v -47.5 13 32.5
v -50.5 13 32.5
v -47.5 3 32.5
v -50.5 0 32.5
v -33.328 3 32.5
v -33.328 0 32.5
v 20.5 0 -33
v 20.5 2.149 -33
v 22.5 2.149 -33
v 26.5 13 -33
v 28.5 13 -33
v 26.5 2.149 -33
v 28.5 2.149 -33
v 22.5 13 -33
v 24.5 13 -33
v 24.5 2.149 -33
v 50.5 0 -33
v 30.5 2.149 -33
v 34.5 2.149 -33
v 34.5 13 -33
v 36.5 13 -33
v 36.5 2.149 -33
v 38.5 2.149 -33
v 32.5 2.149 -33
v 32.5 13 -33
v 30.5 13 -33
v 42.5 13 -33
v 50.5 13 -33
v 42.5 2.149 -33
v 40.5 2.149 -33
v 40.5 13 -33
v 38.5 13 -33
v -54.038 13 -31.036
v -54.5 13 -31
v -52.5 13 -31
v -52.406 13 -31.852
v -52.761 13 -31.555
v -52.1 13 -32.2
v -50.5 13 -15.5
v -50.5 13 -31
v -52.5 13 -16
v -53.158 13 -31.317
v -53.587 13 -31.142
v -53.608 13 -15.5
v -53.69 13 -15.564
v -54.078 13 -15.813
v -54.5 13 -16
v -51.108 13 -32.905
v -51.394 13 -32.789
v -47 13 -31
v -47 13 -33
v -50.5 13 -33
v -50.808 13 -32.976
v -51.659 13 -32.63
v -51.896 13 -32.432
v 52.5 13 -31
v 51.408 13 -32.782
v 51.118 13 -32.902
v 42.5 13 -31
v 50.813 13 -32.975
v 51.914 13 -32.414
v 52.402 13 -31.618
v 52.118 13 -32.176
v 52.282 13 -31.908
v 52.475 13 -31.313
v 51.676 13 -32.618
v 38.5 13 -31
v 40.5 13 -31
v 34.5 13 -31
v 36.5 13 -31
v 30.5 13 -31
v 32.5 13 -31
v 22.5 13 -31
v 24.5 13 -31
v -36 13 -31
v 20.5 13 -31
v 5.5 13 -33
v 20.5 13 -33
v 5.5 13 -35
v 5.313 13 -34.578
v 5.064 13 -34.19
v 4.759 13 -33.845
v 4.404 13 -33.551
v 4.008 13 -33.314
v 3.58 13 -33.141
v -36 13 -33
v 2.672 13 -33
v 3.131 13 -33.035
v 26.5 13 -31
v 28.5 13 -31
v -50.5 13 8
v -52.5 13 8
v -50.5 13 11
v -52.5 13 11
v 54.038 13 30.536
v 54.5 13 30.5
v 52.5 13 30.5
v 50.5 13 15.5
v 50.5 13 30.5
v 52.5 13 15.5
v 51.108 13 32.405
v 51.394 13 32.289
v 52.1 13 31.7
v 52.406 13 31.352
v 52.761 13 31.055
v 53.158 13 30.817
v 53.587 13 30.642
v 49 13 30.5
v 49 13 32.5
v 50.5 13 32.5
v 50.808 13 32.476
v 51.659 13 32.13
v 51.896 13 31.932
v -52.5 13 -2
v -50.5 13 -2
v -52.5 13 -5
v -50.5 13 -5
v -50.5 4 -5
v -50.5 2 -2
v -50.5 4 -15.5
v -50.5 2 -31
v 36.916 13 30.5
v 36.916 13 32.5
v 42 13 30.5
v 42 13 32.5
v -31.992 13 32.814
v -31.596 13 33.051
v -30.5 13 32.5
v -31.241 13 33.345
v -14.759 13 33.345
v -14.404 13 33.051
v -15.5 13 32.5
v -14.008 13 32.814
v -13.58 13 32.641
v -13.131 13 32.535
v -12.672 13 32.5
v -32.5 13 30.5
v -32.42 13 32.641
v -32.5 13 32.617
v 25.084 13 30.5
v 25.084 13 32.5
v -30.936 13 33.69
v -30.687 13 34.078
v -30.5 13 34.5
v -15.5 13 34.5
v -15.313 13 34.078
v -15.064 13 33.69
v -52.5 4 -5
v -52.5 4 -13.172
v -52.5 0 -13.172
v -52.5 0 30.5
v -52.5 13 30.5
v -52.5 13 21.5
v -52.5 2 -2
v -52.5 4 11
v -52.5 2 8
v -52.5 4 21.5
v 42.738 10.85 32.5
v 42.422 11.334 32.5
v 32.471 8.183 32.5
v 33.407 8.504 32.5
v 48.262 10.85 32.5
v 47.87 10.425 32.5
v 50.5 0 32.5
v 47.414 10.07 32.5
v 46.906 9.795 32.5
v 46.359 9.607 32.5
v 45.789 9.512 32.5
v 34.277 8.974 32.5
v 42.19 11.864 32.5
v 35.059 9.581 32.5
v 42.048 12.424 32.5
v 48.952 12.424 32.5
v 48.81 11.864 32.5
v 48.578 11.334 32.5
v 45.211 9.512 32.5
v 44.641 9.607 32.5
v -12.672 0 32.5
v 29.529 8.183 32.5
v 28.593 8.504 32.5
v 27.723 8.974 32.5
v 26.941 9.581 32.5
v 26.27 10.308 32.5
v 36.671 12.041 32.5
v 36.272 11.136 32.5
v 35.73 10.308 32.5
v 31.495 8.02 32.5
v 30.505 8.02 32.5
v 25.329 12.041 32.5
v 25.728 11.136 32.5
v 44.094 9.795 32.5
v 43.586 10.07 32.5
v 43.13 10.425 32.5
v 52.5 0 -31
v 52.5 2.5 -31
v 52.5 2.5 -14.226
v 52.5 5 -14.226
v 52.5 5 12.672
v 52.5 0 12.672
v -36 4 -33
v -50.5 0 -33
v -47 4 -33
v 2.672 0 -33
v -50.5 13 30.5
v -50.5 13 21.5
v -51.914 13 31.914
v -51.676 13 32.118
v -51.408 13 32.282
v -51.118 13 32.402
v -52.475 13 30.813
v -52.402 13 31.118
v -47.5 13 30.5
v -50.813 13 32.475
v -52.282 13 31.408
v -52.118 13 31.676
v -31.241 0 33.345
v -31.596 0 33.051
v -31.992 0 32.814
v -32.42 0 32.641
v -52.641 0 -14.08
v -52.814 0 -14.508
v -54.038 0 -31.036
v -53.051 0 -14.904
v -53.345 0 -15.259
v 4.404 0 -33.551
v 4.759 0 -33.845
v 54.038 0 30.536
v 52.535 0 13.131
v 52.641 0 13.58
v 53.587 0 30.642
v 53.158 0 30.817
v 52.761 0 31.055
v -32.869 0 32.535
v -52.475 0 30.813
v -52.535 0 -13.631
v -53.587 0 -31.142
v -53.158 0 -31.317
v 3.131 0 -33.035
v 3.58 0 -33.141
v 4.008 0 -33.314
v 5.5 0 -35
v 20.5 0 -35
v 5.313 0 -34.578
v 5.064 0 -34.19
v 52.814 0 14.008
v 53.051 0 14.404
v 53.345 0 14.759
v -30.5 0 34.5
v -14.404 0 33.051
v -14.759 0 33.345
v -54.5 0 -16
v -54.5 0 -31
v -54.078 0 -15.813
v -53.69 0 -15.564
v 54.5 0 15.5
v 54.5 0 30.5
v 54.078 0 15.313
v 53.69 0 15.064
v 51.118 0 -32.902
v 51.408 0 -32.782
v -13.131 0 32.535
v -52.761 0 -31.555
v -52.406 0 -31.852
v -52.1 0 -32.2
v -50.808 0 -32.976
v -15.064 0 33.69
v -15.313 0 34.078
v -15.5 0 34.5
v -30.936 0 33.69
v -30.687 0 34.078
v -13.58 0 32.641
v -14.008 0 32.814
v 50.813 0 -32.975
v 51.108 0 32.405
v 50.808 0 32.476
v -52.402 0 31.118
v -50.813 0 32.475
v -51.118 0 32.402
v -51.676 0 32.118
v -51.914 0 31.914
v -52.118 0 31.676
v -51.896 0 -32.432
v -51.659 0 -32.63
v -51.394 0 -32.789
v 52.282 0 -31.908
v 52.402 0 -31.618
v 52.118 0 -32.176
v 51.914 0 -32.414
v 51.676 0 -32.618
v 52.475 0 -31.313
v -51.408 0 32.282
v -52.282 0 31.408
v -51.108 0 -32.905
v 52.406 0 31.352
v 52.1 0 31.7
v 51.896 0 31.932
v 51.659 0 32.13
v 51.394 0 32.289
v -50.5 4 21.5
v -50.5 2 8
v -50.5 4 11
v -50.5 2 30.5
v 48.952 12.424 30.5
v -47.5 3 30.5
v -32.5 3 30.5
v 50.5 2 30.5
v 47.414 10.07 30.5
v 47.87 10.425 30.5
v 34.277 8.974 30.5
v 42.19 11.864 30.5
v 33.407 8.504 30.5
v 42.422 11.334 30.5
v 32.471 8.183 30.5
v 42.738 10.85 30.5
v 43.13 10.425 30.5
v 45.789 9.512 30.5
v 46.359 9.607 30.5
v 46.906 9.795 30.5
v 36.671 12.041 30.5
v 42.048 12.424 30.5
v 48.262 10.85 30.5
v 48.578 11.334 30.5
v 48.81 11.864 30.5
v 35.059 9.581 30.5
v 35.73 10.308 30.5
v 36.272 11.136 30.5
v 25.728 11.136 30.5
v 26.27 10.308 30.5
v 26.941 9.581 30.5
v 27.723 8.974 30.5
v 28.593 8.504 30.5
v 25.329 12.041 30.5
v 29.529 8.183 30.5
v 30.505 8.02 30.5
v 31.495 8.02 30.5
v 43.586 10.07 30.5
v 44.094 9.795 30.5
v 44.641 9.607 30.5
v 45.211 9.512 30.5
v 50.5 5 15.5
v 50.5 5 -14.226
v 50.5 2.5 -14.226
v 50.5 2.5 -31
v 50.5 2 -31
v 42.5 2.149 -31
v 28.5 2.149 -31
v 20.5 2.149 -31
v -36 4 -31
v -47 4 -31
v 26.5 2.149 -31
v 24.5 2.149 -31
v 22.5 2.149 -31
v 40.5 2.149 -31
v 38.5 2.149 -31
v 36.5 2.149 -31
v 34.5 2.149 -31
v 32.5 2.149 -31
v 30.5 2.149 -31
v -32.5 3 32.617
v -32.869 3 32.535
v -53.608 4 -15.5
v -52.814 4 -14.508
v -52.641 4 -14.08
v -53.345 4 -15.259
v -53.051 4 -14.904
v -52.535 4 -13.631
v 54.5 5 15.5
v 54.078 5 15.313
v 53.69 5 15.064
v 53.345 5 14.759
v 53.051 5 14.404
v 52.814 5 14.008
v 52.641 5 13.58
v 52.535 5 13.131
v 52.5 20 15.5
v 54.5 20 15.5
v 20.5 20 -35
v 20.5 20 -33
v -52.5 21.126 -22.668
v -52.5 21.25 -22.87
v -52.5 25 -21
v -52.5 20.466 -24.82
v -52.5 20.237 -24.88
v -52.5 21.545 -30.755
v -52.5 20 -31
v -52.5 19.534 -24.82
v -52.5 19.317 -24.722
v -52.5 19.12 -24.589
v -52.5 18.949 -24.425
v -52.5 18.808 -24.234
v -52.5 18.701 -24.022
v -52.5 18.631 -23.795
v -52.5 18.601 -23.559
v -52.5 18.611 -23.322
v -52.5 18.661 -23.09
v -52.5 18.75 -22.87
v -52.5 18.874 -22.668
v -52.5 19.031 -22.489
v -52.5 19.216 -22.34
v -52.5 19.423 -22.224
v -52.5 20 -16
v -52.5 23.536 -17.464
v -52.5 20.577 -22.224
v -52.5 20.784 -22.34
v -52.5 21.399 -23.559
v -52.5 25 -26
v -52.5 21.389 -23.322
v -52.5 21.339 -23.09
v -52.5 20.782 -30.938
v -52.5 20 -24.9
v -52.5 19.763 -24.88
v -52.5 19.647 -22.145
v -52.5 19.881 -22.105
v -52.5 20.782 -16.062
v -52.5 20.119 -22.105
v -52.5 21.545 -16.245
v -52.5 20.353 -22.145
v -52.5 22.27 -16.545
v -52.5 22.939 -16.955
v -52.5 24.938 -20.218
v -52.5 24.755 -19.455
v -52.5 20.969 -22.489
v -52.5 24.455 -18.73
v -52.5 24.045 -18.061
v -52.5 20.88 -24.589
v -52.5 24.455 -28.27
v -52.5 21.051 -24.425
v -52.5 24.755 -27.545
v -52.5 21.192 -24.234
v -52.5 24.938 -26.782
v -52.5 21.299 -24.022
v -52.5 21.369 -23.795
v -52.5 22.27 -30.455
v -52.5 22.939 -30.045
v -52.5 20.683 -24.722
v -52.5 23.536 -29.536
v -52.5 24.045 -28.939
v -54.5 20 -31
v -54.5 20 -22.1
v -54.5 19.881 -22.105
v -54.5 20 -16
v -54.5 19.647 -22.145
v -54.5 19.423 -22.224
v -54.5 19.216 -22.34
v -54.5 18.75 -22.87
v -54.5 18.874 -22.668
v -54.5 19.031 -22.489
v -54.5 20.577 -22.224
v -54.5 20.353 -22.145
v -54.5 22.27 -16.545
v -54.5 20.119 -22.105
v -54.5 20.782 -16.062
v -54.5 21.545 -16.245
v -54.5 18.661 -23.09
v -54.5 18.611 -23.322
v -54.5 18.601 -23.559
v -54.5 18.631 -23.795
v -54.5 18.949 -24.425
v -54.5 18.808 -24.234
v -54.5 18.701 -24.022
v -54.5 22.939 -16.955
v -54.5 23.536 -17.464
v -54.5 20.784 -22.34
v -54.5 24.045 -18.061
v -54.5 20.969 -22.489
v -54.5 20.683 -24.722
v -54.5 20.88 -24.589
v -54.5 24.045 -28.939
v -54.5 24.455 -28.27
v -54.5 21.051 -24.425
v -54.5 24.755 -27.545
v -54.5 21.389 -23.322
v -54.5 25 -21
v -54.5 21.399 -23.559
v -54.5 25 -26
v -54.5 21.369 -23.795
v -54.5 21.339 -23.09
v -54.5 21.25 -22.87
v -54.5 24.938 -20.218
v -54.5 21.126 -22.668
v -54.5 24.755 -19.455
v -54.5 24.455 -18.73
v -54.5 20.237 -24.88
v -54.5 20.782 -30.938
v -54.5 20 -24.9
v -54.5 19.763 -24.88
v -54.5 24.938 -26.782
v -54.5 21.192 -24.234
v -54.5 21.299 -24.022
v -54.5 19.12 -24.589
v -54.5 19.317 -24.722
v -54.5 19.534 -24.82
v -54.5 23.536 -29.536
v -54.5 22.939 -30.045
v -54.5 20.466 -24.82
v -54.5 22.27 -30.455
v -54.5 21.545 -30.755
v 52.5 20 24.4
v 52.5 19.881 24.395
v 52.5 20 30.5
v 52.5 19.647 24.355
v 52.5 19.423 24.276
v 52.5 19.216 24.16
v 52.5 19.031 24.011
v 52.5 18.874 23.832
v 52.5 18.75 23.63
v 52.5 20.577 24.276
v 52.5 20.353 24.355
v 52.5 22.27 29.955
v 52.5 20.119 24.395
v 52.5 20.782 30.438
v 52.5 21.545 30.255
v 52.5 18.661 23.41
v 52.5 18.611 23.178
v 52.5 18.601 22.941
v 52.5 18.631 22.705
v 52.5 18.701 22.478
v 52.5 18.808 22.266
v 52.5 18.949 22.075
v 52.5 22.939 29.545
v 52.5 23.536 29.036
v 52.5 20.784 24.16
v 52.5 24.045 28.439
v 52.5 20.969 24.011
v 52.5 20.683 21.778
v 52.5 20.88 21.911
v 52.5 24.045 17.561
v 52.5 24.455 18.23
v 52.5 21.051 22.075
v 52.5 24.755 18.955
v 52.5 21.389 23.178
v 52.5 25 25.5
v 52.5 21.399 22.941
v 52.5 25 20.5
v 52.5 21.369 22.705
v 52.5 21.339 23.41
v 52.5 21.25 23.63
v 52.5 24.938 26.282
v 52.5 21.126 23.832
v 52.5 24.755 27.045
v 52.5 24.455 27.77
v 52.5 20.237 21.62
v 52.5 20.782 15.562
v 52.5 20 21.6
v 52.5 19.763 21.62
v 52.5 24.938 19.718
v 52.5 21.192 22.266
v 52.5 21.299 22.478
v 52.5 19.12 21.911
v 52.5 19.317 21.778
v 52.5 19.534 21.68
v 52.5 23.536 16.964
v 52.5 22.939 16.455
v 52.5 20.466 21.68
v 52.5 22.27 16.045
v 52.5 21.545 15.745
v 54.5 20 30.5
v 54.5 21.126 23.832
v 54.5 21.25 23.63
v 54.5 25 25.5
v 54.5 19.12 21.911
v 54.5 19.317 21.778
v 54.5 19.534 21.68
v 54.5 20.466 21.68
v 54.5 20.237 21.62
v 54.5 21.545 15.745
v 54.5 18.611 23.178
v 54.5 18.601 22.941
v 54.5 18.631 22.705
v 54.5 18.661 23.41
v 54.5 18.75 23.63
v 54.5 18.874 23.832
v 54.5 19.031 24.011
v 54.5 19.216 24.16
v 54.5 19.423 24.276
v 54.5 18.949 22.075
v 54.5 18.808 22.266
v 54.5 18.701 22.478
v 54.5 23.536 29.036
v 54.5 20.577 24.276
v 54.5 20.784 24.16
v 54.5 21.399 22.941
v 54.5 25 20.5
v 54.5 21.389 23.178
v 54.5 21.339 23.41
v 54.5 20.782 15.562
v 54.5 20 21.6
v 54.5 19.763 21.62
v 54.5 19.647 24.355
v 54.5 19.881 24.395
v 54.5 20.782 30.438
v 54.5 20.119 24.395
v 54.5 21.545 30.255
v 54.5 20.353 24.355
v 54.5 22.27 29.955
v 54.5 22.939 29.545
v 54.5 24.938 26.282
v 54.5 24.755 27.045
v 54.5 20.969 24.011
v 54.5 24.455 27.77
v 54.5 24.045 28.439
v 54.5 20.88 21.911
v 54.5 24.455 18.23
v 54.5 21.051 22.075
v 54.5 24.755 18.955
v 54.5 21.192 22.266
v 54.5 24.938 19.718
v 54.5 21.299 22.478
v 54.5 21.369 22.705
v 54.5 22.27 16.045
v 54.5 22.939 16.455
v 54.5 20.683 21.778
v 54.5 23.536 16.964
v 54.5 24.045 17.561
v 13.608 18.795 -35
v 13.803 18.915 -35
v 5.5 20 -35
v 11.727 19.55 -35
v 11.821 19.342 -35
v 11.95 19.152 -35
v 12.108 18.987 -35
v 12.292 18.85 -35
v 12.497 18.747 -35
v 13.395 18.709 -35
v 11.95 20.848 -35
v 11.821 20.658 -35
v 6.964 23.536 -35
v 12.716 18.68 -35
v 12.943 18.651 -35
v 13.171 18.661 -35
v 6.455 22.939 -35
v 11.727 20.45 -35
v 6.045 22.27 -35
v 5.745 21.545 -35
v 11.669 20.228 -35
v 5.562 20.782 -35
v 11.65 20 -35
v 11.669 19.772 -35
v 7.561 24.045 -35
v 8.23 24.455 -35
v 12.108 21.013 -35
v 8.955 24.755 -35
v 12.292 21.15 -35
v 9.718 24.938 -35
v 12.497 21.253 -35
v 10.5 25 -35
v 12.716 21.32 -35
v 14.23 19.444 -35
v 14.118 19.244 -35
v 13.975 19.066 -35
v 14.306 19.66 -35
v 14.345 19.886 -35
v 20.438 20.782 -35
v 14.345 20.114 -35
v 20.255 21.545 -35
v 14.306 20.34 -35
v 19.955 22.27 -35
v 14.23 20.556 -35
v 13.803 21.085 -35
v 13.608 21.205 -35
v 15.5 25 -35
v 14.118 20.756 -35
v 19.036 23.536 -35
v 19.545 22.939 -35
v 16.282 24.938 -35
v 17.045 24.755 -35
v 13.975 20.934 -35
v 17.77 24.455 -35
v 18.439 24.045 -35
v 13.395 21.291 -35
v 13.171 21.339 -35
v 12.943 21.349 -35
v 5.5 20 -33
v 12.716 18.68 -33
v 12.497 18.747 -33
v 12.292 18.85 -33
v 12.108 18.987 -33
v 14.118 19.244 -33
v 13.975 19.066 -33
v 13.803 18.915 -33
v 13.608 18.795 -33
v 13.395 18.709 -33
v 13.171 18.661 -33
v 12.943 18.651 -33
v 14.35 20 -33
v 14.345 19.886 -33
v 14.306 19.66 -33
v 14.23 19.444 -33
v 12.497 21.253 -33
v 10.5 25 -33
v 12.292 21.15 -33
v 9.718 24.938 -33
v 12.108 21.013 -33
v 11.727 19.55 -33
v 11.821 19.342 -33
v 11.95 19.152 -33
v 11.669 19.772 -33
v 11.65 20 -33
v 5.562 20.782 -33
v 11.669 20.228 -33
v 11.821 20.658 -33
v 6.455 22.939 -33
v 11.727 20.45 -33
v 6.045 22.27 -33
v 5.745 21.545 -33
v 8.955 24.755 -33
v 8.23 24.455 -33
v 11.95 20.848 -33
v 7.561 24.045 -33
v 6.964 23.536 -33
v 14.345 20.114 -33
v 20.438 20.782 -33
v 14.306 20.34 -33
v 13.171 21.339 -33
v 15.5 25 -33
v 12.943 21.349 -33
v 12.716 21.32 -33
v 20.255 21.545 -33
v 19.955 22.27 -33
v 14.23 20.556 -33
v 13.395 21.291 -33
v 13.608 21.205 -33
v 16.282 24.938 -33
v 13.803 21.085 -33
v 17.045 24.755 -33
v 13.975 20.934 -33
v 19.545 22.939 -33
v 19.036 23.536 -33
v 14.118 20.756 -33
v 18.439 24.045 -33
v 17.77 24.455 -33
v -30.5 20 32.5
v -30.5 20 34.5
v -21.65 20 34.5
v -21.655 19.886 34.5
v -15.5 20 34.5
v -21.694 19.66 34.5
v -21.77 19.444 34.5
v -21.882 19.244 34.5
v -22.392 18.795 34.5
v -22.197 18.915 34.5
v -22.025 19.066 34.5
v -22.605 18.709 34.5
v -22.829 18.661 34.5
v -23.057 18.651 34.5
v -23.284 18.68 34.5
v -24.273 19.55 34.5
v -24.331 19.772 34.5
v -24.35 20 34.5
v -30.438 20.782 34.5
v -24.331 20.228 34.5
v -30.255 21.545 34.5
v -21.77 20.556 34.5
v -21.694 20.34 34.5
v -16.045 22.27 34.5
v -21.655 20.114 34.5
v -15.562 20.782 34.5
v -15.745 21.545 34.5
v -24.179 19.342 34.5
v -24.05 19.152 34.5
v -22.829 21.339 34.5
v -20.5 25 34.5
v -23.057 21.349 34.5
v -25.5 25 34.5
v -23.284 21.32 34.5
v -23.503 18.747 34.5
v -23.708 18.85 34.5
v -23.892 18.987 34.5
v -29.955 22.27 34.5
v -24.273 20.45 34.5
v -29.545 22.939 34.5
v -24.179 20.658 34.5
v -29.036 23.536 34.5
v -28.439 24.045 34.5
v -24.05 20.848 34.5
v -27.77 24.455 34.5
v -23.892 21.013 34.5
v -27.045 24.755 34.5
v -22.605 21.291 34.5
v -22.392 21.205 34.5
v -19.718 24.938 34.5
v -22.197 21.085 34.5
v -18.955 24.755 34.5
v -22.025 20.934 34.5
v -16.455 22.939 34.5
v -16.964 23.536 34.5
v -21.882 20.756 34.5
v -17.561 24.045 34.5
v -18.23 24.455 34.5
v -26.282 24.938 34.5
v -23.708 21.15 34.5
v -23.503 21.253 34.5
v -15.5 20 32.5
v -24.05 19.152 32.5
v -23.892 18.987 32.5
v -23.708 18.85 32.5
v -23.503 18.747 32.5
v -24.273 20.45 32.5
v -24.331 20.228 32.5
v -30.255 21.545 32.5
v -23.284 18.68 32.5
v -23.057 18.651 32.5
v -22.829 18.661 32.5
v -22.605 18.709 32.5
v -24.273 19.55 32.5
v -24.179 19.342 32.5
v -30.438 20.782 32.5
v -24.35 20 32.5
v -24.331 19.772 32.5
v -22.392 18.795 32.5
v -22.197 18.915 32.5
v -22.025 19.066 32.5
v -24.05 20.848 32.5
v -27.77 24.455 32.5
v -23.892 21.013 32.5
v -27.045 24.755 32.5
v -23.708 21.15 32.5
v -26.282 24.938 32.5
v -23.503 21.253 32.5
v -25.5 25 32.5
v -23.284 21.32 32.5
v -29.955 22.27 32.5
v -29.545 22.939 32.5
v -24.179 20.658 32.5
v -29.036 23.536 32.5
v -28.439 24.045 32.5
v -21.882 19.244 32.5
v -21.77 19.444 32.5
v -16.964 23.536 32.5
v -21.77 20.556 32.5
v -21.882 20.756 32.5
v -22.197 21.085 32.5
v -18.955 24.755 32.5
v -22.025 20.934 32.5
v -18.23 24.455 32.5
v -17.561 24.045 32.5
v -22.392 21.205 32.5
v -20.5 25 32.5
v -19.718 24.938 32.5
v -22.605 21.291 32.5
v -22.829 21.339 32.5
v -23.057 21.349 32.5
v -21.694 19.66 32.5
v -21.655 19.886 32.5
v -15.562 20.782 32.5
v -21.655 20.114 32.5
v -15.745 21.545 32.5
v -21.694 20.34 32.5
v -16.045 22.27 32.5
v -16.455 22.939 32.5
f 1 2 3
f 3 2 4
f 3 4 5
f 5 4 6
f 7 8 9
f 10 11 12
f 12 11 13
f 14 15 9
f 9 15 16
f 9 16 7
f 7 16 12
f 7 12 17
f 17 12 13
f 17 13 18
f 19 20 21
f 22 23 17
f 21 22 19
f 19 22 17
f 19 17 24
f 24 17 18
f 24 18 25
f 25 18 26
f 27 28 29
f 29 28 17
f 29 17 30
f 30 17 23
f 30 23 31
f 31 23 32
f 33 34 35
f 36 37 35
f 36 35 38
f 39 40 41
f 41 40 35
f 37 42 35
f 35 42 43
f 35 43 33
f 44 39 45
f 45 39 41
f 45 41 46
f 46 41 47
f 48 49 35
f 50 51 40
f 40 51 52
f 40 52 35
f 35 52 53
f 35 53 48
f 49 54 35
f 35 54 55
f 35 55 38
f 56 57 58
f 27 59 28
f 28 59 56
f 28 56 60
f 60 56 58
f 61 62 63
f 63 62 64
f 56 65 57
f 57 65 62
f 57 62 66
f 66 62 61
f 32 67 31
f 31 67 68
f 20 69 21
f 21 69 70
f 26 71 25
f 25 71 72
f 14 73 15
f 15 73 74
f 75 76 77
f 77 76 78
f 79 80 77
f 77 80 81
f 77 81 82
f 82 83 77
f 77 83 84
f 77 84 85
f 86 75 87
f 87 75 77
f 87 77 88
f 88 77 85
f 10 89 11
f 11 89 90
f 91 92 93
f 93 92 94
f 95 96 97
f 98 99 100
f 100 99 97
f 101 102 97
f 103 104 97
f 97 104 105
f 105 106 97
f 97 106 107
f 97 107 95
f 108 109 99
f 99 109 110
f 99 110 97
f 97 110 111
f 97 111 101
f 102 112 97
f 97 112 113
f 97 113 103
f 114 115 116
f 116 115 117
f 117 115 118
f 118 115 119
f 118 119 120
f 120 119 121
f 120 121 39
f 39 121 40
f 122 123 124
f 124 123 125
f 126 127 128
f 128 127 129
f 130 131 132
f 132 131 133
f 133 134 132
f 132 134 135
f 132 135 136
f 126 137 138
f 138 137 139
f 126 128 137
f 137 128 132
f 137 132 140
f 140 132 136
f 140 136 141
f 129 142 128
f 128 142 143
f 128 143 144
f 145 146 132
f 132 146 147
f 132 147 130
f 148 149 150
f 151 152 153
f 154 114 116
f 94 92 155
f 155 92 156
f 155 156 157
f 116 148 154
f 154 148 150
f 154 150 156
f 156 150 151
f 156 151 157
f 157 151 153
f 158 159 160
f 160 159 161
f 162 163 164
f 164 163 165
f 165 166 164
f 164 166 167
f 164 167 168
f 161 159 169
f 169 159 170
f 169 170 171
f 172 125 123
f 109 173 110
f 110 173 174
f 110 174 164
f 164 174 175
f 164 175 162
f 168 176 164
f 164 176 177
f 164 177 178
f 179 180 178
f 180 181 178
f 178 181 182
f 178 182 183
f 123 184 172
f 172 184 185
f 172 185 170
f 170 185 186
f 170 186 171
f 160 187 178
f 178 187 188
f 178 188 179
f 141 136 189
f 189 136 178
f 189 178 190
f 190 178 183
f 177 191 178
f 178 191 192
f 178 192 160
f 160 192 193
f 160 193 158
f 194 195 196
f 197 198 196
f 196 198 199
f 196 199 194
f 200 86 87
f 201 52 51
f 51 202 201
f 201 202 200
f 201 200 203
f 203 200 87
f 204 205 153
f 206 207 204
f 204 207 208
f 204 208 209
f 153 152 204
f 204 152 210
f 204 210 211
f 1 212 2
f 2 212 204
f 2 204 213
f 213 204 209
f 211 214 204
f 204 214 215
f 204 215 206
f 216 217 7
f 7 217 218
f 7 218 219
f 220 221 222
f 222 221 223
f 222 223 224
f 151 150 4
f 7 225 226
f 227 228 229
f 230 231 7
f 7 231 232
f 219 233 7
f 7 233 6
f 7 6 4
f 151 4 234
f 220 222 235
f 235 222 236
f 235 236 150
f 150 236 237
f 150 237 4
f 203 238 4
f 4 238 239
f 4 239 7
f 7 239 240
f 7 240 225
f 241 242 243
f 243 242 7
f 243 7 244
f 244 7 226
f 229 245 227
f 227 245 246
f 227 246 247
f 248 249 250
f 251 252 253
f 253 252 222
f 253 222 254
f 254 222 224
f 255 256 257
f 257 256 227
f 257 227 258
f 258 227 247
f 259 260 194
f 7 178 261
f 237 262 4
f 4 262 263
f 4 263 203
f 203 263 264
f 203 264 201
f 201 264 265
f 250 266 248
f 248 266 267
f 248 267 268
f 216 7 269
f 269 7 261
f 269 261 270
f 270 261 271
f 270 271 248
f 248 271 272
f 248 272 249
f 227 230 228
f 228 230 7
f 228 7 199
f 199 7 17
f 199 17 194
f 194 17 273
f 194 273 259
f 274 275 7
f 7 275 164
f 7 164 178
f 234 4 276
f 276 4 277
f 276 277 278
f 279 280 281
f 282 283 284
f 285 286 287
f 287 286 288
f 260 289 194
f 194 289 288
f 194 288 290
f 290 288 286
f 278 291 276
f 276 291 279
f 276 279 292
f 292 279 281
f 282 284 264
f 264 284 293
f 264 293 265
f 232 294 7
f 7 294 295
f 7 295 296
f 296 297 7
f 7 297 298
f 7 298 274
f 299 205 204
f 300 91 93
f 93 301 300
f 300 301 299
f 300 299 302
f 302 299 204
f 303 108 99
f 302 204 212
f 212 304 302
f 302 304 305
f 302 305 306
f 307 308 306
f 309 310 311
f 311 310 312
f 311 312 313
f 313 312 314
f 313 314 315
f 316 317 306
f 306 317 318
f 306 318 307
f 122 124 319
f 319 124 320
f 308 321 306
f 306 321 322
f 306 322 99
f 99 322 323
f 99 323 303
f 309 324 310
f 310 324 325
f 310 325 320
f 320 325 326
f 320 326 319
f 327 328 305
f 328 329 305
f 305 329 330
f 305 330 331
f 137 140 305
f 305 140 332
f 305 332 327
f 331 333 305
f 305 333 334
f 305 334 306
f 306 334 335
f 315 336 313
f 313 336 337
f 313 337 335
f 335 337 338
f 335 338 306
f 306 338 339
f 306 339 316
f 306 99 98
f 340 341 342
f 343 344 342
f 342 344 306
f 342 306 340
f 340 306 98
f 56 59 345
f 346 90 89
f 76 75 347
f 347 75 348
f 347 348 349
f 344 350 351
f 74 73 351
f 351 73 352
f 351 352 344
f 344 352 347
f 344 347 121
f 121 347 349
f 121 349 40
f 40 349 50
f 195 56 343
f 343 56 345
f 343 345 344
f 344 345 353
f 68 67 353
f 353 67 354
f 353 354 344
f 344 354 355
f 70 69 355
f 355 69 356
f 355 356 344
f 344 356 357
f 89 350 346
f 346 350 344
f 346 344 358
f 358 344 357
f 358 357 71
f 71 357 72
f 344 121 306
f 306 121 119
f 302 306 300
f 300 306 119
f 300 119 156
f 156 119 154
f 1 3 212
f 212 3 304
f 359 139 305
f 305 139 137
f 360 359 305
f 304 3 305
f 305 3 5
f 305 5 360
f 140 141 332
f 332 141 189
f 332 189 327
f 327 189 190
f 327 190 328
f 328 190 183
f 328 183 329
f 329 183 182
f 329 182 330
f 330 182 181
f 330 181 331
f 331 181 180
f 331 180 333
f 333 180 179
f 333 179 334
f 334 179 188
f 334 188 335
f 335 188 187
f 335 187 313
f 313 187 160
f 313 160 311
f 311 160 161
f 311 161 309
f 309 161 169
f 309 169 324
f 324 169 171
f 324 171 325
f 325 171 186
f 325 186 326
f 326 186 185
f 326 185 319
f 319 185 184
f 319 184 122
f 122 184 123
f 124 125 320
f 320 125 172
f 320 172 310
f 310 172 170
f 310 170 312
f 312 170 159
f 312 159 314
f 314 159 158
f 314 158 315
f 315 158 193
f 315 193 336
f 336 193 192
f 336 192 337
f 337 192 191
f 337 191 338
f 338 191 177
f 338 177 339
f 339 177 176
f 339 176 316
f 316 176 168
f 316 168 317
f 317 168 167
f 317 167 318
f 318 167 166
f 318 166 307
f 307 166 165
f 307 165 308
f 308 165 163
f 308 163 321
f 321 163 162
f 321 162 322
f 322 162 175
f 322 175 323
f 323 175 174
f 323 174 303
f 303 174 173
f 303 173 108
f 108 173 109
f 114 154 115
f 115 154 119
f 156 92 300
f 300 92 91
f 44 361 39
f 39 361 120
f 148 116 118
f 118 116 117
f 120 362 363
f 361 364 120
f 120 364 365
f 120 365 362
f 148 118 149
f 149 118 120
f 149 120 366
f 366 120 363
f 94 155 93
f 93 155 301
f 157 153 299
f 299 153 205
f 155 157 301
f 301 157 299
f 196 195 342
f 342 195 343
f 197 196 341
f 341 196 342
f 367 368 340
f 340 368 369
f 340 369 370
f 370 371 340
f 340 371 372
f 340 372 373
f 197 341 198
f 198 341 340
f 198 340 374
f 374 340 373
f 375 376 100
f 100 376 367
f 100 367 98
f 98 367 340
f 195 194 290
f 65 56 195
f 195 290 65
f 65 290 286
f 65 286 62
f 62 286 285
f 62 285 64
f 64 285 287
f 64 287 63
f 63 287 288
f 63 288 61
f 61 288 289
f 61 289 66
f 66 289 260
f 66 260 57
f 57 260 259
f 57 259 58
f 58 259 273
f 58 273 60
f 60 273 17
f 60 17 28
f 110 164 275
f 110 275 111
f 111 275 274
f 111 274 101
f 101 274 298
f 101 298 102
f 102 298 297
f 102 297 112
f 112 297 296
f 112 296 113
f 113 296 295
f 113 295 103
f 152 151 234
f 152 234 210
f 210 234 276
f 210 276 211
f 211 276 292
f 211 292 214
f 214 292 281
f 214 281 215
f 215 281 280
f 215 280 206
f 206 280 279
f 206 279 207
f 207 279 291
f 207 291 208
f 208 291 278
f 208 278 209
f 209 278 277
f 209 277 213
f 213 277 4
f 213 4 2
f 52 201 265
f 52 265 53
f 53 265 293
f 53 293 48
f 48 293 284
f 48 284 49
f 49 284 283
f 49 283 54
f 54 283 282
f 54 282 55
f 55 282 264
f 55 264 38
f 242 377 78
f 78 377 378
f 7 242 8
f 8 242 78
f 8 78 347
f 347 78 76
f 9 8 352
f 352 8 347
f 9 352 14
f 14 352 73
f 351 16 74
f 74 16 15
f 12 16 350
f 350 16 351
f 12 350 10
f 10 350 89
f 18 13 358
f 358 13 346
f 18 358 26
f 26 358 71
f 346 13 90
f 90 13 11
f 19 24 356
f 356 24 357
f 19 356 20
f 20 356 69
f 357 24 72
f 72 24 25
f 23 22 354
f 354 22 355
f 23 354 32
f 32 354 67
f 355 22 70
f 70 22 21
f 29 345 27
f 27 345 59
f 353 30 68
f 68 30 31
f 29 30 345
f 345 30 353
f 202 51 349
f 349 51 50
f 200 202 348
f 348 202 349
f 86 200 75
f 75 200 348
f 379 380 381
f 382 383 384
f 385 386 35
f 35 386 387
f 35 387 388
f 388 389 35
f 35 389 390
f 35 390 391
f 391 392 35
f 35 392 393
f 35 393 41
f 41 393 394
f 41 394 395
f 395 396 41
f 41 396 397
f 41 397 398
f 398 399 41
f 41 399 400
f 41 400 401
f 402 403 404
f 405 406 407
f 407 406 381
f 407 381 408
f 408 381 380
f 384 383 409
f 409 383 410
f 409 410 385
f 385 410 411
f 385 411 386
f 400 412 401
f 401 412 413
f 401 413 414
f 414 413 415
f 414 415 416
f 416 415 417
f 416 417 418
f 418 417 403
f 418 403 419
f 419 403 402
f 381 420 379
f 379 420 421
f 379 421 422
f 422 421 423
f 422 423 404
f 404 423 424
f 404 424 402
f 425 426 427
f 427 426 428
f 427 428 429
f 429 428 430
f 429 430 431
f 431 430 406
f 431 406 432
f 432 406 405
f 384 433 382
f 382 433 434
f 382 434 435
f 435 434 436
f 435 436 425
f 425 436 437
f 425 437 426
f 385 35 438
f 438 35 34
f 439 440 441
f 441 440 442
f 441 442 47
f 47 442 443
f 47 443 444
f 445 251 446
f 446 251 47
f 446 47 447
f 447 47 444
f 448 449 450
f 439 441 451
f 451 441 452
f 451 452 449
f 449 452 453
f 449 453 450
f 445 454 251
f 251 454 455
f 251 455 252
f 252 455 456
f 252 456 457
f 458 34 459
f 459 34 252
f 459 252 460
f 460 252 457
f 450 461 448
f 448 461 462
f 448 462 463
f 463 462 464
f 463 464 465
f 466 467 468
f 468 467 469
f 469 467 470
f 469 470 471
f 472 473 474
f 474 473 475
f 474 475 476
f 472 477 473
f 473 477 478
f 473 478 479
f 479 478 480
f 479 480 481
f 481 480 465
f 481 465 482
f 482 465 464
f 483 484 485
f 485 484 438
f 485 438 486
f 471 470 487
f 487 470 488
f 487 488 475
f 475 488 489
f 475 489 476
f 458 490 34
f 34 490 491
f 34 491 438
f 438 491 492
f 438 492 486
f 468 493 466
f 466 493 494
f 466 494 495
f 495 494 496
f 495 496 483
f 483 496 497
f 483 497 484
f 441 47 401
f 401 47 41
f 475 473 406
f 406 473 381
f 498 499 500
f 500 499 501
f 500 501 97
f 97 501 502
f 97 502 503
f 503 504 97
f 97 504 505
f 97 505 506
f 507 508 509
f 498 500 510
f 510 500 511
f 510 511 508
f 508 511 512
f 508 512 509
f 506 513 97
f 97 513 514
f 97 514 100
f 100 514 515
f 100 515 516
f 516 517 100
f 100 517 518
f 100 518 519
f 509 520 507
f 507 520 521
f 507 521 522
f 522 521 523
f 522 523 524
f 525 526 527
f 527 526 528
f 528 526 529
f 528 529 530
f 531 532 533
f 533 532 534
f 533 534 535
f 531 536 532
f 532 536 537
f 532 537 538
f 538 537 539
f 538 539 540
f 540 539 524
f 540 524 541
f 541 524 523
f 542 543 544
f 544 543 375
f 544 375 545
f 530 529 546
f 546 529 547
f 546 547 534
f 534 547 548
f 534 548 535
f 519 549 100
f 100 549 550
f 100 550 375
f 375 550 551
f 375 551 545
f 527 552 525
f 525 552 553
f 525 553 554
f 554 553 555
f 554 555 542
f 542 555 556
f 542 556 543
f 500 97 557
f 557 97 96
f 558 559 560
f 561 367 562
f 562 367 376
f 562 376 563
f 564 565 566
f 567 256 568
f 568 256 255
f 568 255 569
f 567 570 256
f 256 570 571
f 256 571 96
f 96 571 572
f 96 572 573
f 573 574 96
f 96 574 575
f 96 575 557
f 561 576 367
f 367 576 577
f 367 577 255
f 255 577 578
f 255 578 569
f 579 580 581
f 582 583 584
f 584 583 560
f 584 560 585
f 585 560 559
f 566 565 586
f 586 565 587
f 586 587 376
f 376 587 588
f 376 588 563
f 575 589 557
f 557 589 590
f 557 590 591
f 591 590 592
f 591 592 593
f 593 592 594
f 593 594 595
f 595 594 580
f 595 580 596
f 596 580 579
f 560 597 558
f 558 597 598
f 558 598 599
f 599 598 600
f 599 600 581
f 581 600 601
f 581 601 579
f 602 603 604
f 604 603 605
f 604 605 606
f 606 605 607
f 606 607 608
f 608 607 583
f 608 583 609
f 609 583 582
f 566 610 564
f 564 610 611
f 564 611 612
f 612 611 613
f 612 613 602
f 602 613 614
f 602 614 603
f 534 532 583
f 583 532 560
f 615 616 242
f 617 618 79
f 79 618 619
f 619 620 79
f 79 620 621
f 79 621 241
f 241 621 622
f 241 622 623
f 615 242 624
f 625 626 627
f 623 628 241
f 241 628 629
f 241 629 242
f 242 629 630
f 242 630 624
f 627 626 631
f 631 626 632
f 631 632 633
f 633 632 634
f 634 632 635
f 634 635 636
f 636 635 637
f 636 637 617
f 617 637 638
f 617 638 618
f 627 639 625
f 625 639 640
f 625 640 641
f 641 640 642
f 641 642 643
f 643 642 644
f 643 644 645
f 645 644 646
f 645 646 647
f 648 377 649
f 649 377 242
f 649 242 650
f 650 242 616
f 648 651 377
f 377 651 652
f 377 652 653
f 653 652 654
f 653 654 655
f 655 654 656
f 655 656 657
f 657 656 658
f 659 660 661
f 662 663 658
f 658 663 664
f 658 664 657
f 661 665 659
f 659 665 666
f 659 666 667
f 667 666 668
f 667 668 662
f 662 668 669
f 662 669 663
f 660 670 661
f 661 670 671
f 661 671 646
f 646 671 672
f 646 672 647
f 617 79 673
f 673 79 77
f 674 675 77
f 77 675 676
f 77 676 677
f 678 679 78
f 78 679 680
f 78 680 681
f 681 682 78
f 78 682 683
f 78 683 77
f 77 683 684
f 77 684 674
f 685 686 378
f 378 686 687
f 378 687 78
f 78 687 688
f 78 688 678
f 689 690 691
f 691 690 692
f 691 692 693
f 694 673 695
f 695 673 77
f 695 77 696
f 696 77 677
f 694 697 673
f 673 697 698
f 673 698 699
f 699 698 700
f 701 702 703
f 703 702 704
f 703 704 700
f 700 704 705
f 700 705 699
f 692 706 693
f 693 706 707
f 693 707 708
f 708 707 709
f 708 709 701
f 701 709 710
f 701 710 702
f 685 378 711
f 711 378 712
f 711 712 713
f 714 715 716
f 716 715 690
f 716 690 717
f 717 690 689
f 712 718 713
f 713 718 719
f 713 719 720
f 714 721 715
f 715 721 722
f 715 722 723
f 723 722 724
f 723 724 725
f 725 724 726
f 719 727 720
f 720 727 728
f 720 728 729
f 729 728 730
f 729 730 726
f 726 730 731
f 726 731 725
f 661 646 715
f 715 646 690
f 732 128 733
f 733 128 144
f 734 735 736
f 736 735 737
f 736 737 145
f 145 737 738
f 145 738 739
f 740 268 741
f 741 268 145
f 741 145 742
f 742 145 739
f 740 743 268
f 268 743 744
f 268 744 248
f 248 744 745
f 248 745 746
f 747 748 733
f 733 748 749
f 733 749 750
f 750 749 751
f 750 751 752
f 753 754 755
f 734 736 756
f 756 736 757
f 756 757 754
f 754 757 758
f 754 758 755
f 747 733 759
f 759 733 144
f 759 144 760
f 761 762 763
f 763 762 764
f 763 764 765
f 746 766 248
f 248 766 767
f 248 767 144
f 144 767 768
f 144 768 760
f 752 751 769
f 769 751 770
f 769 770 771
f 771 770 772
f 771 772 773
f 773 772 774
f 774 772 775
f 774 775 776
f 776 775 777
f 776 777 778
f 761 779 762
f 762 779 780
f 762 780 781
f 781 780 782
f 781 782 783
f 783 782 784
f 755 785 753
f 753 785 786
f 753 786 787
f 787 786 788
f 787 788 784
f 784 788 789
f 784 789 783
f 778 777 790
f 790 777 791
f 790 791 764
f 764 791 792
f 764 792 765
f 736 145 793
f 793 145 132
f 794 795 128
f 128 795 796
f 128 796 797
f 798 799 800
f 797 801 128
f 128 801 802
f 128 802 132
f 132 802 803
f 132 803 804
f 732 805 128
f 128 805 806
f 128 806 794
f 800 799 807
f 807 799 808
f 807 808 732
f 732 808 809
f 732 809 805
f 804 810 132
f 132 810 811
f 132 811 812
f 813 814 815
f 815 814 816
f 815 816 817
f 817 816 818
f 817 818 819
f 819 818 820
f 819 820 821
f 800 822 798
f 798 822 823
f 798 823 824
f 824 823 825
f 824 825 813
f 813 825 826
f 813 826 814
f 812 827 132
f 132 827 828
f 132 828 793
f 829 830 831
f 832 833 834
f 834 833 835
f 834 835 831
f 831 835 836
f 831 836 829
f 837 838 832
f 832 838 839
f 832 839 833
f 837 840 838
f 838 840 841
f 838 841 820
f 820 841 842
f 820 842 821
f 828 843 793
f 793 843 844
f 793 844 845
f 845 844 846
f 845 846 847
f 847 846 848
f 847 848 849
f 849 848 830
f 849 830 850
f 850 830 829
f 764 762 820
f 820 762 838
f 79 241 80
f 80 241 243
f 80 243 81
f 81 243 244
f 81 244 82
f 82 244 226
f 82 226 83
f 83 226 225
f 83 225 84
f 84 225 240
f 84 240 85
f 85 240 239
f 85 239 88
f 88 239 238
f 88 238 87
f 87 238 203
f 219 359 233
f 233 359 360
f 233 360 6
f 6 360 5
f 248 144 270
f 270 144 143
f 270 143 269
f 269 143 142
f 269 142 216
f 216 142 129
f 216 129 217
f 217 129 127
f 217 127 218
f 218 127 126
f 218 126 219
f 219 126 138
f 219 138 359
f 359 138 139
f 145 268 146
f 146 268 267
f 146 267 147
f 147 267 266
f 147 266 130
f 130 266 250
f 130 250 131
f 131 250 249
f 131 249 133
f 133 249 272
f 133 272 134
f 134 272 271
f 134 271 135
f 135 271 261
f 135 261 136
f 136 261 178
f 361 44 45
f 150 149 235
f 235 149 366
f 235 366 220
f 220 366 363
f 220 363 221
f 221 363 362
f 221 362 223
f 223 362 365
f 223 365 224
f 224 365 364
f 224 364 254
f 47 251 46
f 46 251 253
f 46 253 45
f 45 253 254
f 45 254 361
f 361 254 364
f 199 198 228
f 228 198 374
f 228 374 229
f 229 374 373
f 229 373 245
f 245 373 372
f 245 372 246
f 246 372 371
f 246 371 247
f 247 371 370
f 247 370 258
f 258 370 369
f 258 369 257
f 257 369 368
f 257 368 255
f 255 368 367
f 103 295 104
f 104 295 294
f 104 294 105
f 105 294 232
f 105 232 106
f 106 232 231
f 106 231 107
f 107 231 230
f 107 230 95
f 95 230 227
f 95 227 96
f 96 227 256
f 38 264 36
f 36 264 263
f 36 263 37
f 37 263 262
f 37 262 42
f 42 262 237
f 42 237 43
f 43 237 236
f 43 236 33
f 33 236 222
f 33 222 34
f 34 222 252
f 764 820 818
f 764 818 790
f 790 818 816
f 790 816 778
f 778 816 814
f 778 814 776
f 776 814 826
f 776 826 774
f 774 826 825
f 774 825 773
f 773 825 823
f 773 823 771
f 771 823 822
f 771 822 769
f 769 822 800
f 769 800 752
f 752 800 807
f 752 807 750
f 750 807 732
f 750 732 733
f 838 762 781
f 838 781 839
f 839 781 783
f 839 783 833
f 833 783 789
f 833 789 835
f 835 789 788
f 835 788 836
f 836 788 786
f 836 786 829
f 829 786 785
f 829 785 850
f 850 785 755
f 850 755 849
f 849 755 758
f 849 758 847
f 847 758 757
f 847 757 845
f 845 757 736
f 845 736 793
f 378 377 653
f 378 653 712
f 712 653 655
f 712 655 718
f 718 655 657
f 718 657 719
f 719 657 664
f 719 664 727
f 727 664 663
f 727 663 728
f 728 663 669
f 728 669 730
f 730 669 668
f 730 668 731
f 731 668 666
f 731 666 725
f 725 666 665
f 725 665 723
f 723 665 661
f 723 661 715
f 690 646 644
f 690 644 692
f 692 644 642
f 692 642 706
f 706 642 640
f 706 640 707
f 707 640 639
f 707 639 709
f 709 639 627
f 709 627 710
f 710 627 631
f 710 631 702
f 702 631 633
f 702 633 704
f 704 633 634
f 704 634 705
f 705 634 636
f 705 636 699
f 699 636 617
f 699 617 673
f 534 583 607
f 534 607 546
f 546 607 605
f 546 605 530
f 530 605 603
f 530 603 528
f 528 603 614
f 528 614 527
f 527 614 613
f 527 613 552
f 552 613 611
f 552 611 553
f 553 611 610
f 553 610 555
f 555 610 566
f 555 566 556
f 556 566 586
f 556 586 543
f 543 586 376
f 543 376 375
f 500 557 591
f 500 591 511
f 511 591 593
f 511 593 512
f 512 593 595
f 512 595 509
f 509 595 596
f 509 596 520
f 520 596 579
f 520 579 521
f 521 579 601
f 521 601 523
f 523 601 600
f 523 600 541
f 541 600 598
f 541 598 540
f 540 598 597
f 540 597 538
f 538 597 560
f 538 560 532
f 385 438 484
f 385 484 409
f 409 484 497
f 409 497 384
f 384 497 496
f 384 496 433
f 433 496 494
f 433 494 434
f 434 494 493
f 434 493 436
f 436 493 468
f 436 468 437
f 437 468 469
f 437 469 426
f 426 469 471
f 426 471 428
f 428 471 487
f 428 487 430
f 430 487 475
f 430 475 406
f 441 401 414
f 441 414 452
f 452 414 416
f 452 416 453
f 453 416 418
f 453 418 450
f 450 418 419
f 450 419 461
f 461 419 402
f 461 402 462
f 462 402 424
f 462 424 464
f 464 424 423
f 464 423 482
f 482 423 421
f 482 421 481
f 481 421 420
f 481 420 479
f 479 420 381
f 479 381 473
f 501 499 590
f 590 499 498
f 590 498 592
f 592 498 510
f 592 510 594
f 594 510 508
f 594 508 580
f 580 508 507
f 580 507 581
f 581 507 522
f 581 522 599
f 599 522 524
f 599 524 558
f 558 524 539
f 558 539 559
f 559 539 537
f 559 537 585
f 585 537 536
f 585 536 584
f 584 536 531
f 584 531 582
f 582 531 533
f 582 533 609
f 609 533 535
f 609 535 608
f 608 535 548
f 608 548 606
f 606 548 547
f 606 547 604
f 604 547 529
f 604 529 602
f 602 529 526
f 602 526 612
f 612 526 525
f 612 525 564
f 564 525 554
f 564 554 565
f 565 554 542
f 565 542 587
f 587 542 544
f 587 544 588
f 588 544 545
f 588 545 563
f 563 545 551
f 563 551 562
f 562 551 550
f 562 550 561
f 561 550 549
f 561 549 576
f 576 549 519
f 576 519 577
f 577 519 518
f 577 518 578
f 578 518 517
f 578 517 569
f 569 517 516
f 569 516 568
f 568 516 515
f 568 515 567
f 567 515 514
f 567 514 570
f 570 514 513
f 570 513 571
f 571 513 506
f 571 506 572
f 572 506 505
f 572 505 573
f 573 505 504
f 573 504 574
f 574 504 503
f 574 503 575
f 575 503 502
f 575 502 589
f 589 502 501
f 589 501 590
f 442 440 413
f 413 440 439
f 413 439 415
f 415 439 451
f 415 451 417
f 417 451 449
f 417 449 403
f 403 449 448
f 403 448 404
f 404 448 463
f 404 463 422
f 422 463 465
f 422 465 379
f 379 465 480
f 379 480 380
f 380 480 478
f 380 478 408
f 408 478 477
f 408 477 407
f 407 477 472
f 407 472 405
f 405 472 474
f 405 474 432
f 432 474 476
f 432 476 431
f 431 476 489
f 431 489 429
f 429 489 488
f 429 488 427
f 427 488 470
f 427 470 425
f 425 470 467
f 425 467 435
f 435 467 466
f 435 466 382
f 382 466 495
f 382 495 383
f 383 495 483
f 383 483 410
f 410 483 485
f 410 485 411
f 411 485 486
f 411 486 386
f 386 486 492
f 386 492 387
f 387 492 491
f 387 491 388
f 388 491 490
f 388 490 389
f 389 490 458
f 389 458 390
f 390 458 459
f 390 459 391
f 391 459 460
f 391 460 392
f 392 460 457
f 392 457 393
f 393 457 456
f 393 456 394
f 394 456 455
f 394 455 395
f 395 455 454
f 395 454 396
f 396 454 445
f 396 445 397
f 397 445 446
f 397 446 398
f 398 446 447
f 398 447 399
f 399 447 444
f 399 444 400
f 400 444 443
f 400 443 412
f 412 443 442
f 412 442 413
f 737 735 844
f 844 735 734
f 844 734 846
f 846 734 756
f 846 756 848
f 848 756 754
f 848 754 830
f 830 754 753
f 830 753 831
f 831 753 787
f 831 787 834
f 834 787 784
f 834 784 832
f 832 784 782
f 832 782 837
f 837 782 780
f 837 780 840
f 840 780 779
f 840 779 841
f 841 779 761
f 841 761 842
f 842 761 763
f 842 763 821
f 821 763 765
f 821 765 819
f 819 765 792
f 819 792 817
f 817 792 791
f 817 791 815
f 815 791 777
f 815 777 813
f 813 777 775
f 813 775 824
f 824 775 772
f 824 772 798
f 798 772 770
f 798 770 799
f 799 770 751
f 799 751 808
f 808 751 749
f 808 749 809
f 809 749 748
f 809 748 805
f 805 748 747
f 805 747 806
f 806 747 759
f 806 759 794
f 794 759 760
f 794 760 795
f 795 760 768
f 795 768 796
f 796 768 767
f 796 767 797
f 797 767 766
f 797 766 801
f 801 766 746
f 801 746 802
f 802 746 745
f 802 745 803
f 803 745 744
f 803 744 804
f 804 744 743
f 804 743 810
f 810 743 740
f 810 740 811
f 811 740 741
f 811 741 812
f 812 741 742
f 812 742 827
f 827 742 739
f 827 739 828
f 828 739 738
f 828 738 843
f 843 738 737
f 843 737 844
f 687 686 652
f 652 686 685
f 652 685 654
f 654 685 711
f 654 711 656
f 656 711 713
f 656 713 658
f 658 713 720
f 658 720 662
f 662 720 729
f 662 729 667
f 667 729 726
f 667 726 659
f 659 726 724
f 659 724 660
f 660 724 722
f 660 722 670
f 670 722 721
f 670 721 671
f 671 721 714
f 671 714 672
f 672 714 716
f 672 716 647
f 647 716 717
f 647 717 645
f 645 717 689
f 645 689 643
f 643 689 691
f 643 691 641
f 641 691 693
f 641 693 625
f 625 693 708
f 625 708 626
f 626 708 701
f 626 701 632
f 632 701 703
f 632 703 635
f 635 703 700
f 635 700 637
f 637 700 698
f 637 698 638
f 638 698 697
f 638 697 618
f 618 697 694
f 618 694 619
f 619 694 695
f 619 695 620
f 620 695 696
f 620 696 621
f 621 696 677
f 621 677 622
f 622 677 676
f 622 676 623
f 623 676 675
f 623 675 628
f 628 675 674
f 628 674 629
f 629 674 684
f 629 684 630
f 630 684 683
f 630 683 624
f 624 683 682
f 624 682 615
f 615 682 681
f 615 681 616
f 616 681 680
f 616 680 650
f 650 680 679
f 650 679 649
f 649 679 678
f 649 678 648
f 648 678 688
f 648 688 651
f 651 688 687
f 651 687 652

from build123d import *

# Parameters (mm, degrees)
SKETCH_1_W          = 105
SKETCH_1_H          = 65.5
EXTRUDE_1_DEPTH     = 13
SHELL_1_T           = -2
SKETCH_2_R          = 3.5
SKETCH_2_R_2        = 6
SKETCH_2_W          = 15
SKETCH_2_H          = 10
CUT_EXTRUDE_1_DEPTH = 15
SKETCH_3_W          = 10.5
SKETCH_3_H          = 9
SKETCH_3_W_2        = 10
SKETCH_3_H_2        = 11
CUT_EXTRUDE_2_DEPTH = 15
CUT_EXTRUDE_3_DEPTH = 15
FILLET_1_R          = 2
SKETCH_5_W          = 2
SKETCH_5_H          = 17.199999525
CUT_EXTRUDE_4_DEPTH = 15
SKETCH_6_W          = 11
SKETCH_6_H          = 9
CUT_EXTRUDE_5_DEPTH = 15
SKETCH_10_W         = 2
SKETCH_10_H         = 15
SKETCH_10_W_2       = 15
SKETCH_10_H_2       = 2
EXTRUDE_2_DEPTH     = 25
FILLET_2_R          = 3
FILLET_3_R          = 5
SKETCH_11_R         = 1.4
CUT_EXTRUDE_6_DEPTH = 120
SKETCH_13_R         = 1.35
CUT_EXTRUDE_7_DEPTH = 76


with BuildPart() as part:
    # 草图1 → 凸台-拉伸1 (new body)
    with BuildSketch(Plane(origin=(0, 0, 0), x_dir=(1, 0, 0), z_dir=(0, 1, 0))):
        with Locations((0, 0.25)):
            Rectangle(SKETCH_1_W, SKETCH_1_H)
    extrude(amount=EXTRUDE_1_DEPTH)

    # 抽壳1
    shell_1_openings = [part.faces().sort_by_distance(p)[0] for p in [
        (0, 13, -0.25),
    ]]
    offset(amount=SHELL_1_T, openings=shell_1_openings, kind=Kind.INTERSECTION)

    # 草图2 → 切除-拉伸1 (cut)
    with BuildSketch(Plane.XY.offset(32.5)):
        with Locations((45.5, 13)):
            Circle(SKETCH_2_R)
        with Locations((31, 14)):
            Circle(SKETCH_2_R_2)
        with Locations((-40, 8)):
            Rectangle(SKETCH_2_W, SKETCH_2_H)
    extrude(amount=-CUT_EXTRUDE_1_DEPTH, mode=Mode.SUBTRACT)

    # 草图3 → 切除-拉伸2 (cut)
    with BuildSketch(Plane.ZY.offset(52.5)):
        with Locations((16.25, 8.5)):
            Rectangle(SKETCH_3_W, SKETCH_3_H)
        with Locations((-10.25, 8.5)):
            Rectangle(SKETCH_3_W, SKETCH_3_H)
        with Locations((3, 7.5)):
            Rectangle(SKETCH_3_W_2, SKETCH_3_H_2)
    extrude(amount=-CUT_EXTRUDE_2_DEPTH, mode=Mode.SUBTRACT)

    # 草图4 → 切除-拉伸3 (cut)
    with BuildSketch(Plane(origin=(52.5, 0, 0), x_dir=(0, 0, -1), z_dir=(1, 0, 0))):
        Polygon((31, 13), (14.225771641, 13), (12.965043457, 13), (-15.5, 13), (-15.5, 5), (12.965043457, 5), (14.225771641, 5), (14.225771641, 2.5), (31, 2.5), align=None)
    extrude(amount=-CUT_EXTRUDE_3_DEPTH, mode=Mode.SUBTRACT)

    # 圆角1
    fillet_1_edges = [part.edges().sort_by_distance(p)[0] for p in [
        (-52.5, 6.5, -33),
        (52.5, 6.5, -33),
        (52.5, 6.5, 32.5),
        (-52.5, 6.5, 32.5),
    ]]
    fillet(fillet_1_edges, radius=FILLET_1_R)

    # 草图5 → 切除-拉伸4 (cut)
    with BuildSketch(Plane(origin=(0, 0, -33), x_dir=(-1, 0, 0), z_dir=(0, 0, -1))):
        with Locations((-41.5, 10.748878275)):
            Rectangle(SKETCH_5_W, SKETCH_5_H)
        with Locations((-37.5, 10.748878275)):
            Rectangle(SKETCH_5_W, SKETCH_5_H)
        with Locations((-33.5, 10.748878275)):
            Rectangle(SKETCH_5_W, SKETCH_5_H)
        with Locations((-29.5, 10.748878275)):
            Rectangle(SKETCH_5_W, SKETCH_5_H)
        with Locations((-25.5, 10.748878275)):
            Rectangle(SKETCH_5_W, SKETCH_5_H)
        with Locations((-21.5, 10.748878275)):
            Rectangle(SKETCH_5_W, SKETCH_5_H)
    extrude(amount=-CUT_EXTRUDE_4_DEPTH, mode=Mode.SUBTRACT)

    # 草图6 → 切除-拉伸5 (cut)
    with BuildSketch(Plane(origin=(0, 0, -33), x_dir=(-1, 0, 0), z_dir=(0, 0, -1))):
        with Locations((41.5, 8.5)):
            Rectangle(SKETCH_6_W, SKETCH_6_H)
    extrude(amount=-CUT_EXTRUDE_5_DEPTH, mode=Mode.SUBTRACT)

    # 草图10 → 凸台-拉伸2 (add)
    with BuildSketch(Plane.XZ):
        with Locations((-53.5, -23.5)):
            Rectangle(SKETCH_10_W, SKETCH_10_H)
        with Locations((53.5, 23)):
            Rectangle(SKETCH_10_W, SKETCH_10_H)
        with Locations((13, -34)):
            Rectangle(SKETCH_10_W_2, SKETCH_10_H_2)
        with Locations((-23, 33.5)):
            Rectangle(SKETCH_10_W_2, SKETCH_10_H_2)
    extrude(amount=-EXTRUDE_2_DEPTH)

    # 圆角2
    # the kernel refuses this fillet: 3 mm, written as the material it adds along each edge
    with BuildSketch(Plane(origin=(52.5, 0, 30.5), x_dir=(-0.31622776601639135, 0, 0.9486832980506626), z_dir=(0, 1, 0)), Plane(origin=(-52.5, 0, -31), x_dir=(0.31622776601639135, 0, -0.9486832980506626), z_dir=(0, 1, 0))) as fillet_2_piece_1:
        with BuildLine():
            CenterArc((2.213594362, 2.846049894), FILLET_2_R, 198.434948823, 53.130102354)
            Line((-0.632455532, 1.897366596), (0, 0))
            ThreePointArc((0, 0), (0.632455532, 0.102633404), (1.264911064, 0))
        make_face()
    extrude(amount=13)
    with BuildSketch(Plane(origin=(-52.5, 0, -16), x_dir=(0, 0, 1), z_dir=(0, 1, 0))) as fillet_2_piece_2_section:
        with BuildLine():
            CenterArc((2.828427125, -3), FILLET_2_R, 90, 70.528779366)
            Line((0, -2), (0, 0))
            Line((0, 0), (2.828427125, 0))
        make_face()
    fillet_2_piece_2 = extrude(amount=20.071067812, mode=Mode.PRIVATE)
    fillet_2_piece_2 = split(fillet_2_piece_2, bisect_by=Plane(origin=(-52.5, 4, -16), z_dir=(0, -1, 0)), keep=Keep.TOP, mode=Mode.PRIVATE)
    add(fillet_2_piece_2)
    with BuildSketch(Plane(origin=(-52.5, -7.071067812, -16), x_dir=(0, 0, 1), z_dir=(0, 1, 0))) as fillet_2_piece_3_section:
        with BuildLine():
            CenterArc((2.828427125, -3), FILLET_2_R, 90, 70.528779366)
            Line((0, -2), (0, 0))
            Line((0, 0), (2.828427125, 0))
        make_face()
    fillet_2_piece_3 = extrude(amount=20.071067812, mode=Mode.PRIVATE)
    fillet_2_piece_3 = split(fillet_2_piece_3, bisect_by=Plane(origin=(-52.5, -7.071067812, -15.5), z_dir=(0, 0, -1)), keep=Keep.TOP, mode=Mode.PRIVATE)
    fillet_2_piece_3 = split(fillet_2_piece_3, bisect_by=Plane(origin=(-52.5, 4, -16), z_dir=(0, 1, 0)), keep=Keep.TOP, mode=Mode.PRIVATE)
    add(fillet_2_piece_3)
    with BuildSketch(Plane(origin=(52.5, 0, 15.5), x_dir=(0, 0, -1), z_dir=(0, 1, 0))) as fillet_2_piece_4:
        with BuildLine():
            CenterArc((2.828427125, -3), FILLET_2_R, 90, 70.528779366)
            Line((0, -2), (0, 0))
            Line((0, 0), (2.828427125, 0))
        make_face()
    extrude(amount=5)
    with BuildSketch(Plane(origin=(5.5, 0, -33), x_dir=(-1, 0, 0), z_dir=(0, 1, 0)), Plane(origin=(-15.5, 0, 32.5), x_dir=(1, 0, 0), z_dir=(0, 1, 0))) as fillet_2_piece_5:
        with BuildLine():
            CenterArc((2.828427125, -3), FILLET_2_R, 90, 70.528779366)
            Line((0, -2), (0, 0))
            Line((0, 0), (2.828427125, 0))
        make_face()
    extrude(amount=13)
    with BuildSketch(Plane(origin=(-30.5, 0, 32.5), x_dir=(-1, 0, 0), z_dir=(0, 1, 0))) as fillet_2_piece_6_section:
        with BuildLine():
            CenterArc((2.828427125, 3), FILLET_2_R, 199.471220634, 70.528779366)
            Line((0, 2), (0, 0))
            Line((0, 0), (2.828427125, 0))
        make_face()
    fillet_2_piece_6 = extrude(amount=20.071067812, mode=Mode.PRIVATE)
    fillet_2_piece_6 = split(fillet_2_piece_6, bisect_by=Plane(origin=(-30.5, 3, 32.5), z_dir=(0, -1, 0)), keep=Keep.TOP, mode=Mode.PRIVATE)
    add(fillet_2_piece_6)
    with BuildSketch(Plane(origin=(-30.5, -7.071067812, 32.5), x_dir=(-1, 0, 0), z_dir=(0, 1, 0))) as fillet_2_piece_7_section:
        with BuildLine():
            CenterArc((2.828427125, 3), FILLET_2_R, 199.471220634, 70.528779366)
            Line((0, 2), (0, 0))
            Line((0, 0), (2.828427125, 0))
        make_face()
    fillet_2_piece_7 = extrude(amount=20.071067812, mode=Mode.PRIVATE)
    fillet_2_piece_7 = split(fillet_2_piece_7, bisect_by=Plane(origin=(-30.5, 3, 32.5), z_dir=(0, 1, 0)), keep=Keep.TOP, mode=Mode.PRIVATE)
    fillet_2_piece_7 = split(fillet_2_piece_7, bisect_by=Plane(origin=(-32.5, -7.071067812, 32.5), z_dir=(1, 0, 0)), keep=Keep.TOP, mode=Mode.PRIVATE)
    add(fillet_2_piece_7)

    # 圆角3
    fillet_3_edges = [part.edges().sort_by_distance(p)[0] for p in [
        (-53.5, 25, -31),
        (-53.5, 25, -16),
        (53.5, 25, 30.5),
        (53.5, 25, 15.5),
        (20.5, 25, -34),
        (5.5, 25, -34),
        (-30.5, 25, 33.5),
        (-15.5, 25, 33.5),
    ]]
    fillet(fillet_3_edges, radius=FILLET_3_R)

    # 草图11 → 切除-拉伸6 (cut)
    with BuildSketch(Plane(origin=(54.5, 0, 0), x_dir=(0, 0, -1), z_dir=(1, 0, 0))):
        with Locations((-23, 20)):
            Circle(SKETCH_11_R)
        with Locations((23.5, 20)):
            Circle(SKETCH_11_R)
    extrude(amount=-CUT_EXTRUDE_6_DEPTH, mode=Mode.SUBTRACT)

    # 草图13 → 切除-拉伸7 (cut)
    with BuildSketch(Plane(origin=(0, 0, -35), x_dir=(-1, 0, 0), z_dir=(0, 0, -1))):
        with Locations((-13, 20)):
            Circle(SKETCH_13_R)
        with Locations((23, 20)):
            Circle(SKETCH_13_R)
    extrude(amount=-CUT_EXTRUDE_7_DEPTH, mode=Mode.SUBTRACT)


solid = part.part
